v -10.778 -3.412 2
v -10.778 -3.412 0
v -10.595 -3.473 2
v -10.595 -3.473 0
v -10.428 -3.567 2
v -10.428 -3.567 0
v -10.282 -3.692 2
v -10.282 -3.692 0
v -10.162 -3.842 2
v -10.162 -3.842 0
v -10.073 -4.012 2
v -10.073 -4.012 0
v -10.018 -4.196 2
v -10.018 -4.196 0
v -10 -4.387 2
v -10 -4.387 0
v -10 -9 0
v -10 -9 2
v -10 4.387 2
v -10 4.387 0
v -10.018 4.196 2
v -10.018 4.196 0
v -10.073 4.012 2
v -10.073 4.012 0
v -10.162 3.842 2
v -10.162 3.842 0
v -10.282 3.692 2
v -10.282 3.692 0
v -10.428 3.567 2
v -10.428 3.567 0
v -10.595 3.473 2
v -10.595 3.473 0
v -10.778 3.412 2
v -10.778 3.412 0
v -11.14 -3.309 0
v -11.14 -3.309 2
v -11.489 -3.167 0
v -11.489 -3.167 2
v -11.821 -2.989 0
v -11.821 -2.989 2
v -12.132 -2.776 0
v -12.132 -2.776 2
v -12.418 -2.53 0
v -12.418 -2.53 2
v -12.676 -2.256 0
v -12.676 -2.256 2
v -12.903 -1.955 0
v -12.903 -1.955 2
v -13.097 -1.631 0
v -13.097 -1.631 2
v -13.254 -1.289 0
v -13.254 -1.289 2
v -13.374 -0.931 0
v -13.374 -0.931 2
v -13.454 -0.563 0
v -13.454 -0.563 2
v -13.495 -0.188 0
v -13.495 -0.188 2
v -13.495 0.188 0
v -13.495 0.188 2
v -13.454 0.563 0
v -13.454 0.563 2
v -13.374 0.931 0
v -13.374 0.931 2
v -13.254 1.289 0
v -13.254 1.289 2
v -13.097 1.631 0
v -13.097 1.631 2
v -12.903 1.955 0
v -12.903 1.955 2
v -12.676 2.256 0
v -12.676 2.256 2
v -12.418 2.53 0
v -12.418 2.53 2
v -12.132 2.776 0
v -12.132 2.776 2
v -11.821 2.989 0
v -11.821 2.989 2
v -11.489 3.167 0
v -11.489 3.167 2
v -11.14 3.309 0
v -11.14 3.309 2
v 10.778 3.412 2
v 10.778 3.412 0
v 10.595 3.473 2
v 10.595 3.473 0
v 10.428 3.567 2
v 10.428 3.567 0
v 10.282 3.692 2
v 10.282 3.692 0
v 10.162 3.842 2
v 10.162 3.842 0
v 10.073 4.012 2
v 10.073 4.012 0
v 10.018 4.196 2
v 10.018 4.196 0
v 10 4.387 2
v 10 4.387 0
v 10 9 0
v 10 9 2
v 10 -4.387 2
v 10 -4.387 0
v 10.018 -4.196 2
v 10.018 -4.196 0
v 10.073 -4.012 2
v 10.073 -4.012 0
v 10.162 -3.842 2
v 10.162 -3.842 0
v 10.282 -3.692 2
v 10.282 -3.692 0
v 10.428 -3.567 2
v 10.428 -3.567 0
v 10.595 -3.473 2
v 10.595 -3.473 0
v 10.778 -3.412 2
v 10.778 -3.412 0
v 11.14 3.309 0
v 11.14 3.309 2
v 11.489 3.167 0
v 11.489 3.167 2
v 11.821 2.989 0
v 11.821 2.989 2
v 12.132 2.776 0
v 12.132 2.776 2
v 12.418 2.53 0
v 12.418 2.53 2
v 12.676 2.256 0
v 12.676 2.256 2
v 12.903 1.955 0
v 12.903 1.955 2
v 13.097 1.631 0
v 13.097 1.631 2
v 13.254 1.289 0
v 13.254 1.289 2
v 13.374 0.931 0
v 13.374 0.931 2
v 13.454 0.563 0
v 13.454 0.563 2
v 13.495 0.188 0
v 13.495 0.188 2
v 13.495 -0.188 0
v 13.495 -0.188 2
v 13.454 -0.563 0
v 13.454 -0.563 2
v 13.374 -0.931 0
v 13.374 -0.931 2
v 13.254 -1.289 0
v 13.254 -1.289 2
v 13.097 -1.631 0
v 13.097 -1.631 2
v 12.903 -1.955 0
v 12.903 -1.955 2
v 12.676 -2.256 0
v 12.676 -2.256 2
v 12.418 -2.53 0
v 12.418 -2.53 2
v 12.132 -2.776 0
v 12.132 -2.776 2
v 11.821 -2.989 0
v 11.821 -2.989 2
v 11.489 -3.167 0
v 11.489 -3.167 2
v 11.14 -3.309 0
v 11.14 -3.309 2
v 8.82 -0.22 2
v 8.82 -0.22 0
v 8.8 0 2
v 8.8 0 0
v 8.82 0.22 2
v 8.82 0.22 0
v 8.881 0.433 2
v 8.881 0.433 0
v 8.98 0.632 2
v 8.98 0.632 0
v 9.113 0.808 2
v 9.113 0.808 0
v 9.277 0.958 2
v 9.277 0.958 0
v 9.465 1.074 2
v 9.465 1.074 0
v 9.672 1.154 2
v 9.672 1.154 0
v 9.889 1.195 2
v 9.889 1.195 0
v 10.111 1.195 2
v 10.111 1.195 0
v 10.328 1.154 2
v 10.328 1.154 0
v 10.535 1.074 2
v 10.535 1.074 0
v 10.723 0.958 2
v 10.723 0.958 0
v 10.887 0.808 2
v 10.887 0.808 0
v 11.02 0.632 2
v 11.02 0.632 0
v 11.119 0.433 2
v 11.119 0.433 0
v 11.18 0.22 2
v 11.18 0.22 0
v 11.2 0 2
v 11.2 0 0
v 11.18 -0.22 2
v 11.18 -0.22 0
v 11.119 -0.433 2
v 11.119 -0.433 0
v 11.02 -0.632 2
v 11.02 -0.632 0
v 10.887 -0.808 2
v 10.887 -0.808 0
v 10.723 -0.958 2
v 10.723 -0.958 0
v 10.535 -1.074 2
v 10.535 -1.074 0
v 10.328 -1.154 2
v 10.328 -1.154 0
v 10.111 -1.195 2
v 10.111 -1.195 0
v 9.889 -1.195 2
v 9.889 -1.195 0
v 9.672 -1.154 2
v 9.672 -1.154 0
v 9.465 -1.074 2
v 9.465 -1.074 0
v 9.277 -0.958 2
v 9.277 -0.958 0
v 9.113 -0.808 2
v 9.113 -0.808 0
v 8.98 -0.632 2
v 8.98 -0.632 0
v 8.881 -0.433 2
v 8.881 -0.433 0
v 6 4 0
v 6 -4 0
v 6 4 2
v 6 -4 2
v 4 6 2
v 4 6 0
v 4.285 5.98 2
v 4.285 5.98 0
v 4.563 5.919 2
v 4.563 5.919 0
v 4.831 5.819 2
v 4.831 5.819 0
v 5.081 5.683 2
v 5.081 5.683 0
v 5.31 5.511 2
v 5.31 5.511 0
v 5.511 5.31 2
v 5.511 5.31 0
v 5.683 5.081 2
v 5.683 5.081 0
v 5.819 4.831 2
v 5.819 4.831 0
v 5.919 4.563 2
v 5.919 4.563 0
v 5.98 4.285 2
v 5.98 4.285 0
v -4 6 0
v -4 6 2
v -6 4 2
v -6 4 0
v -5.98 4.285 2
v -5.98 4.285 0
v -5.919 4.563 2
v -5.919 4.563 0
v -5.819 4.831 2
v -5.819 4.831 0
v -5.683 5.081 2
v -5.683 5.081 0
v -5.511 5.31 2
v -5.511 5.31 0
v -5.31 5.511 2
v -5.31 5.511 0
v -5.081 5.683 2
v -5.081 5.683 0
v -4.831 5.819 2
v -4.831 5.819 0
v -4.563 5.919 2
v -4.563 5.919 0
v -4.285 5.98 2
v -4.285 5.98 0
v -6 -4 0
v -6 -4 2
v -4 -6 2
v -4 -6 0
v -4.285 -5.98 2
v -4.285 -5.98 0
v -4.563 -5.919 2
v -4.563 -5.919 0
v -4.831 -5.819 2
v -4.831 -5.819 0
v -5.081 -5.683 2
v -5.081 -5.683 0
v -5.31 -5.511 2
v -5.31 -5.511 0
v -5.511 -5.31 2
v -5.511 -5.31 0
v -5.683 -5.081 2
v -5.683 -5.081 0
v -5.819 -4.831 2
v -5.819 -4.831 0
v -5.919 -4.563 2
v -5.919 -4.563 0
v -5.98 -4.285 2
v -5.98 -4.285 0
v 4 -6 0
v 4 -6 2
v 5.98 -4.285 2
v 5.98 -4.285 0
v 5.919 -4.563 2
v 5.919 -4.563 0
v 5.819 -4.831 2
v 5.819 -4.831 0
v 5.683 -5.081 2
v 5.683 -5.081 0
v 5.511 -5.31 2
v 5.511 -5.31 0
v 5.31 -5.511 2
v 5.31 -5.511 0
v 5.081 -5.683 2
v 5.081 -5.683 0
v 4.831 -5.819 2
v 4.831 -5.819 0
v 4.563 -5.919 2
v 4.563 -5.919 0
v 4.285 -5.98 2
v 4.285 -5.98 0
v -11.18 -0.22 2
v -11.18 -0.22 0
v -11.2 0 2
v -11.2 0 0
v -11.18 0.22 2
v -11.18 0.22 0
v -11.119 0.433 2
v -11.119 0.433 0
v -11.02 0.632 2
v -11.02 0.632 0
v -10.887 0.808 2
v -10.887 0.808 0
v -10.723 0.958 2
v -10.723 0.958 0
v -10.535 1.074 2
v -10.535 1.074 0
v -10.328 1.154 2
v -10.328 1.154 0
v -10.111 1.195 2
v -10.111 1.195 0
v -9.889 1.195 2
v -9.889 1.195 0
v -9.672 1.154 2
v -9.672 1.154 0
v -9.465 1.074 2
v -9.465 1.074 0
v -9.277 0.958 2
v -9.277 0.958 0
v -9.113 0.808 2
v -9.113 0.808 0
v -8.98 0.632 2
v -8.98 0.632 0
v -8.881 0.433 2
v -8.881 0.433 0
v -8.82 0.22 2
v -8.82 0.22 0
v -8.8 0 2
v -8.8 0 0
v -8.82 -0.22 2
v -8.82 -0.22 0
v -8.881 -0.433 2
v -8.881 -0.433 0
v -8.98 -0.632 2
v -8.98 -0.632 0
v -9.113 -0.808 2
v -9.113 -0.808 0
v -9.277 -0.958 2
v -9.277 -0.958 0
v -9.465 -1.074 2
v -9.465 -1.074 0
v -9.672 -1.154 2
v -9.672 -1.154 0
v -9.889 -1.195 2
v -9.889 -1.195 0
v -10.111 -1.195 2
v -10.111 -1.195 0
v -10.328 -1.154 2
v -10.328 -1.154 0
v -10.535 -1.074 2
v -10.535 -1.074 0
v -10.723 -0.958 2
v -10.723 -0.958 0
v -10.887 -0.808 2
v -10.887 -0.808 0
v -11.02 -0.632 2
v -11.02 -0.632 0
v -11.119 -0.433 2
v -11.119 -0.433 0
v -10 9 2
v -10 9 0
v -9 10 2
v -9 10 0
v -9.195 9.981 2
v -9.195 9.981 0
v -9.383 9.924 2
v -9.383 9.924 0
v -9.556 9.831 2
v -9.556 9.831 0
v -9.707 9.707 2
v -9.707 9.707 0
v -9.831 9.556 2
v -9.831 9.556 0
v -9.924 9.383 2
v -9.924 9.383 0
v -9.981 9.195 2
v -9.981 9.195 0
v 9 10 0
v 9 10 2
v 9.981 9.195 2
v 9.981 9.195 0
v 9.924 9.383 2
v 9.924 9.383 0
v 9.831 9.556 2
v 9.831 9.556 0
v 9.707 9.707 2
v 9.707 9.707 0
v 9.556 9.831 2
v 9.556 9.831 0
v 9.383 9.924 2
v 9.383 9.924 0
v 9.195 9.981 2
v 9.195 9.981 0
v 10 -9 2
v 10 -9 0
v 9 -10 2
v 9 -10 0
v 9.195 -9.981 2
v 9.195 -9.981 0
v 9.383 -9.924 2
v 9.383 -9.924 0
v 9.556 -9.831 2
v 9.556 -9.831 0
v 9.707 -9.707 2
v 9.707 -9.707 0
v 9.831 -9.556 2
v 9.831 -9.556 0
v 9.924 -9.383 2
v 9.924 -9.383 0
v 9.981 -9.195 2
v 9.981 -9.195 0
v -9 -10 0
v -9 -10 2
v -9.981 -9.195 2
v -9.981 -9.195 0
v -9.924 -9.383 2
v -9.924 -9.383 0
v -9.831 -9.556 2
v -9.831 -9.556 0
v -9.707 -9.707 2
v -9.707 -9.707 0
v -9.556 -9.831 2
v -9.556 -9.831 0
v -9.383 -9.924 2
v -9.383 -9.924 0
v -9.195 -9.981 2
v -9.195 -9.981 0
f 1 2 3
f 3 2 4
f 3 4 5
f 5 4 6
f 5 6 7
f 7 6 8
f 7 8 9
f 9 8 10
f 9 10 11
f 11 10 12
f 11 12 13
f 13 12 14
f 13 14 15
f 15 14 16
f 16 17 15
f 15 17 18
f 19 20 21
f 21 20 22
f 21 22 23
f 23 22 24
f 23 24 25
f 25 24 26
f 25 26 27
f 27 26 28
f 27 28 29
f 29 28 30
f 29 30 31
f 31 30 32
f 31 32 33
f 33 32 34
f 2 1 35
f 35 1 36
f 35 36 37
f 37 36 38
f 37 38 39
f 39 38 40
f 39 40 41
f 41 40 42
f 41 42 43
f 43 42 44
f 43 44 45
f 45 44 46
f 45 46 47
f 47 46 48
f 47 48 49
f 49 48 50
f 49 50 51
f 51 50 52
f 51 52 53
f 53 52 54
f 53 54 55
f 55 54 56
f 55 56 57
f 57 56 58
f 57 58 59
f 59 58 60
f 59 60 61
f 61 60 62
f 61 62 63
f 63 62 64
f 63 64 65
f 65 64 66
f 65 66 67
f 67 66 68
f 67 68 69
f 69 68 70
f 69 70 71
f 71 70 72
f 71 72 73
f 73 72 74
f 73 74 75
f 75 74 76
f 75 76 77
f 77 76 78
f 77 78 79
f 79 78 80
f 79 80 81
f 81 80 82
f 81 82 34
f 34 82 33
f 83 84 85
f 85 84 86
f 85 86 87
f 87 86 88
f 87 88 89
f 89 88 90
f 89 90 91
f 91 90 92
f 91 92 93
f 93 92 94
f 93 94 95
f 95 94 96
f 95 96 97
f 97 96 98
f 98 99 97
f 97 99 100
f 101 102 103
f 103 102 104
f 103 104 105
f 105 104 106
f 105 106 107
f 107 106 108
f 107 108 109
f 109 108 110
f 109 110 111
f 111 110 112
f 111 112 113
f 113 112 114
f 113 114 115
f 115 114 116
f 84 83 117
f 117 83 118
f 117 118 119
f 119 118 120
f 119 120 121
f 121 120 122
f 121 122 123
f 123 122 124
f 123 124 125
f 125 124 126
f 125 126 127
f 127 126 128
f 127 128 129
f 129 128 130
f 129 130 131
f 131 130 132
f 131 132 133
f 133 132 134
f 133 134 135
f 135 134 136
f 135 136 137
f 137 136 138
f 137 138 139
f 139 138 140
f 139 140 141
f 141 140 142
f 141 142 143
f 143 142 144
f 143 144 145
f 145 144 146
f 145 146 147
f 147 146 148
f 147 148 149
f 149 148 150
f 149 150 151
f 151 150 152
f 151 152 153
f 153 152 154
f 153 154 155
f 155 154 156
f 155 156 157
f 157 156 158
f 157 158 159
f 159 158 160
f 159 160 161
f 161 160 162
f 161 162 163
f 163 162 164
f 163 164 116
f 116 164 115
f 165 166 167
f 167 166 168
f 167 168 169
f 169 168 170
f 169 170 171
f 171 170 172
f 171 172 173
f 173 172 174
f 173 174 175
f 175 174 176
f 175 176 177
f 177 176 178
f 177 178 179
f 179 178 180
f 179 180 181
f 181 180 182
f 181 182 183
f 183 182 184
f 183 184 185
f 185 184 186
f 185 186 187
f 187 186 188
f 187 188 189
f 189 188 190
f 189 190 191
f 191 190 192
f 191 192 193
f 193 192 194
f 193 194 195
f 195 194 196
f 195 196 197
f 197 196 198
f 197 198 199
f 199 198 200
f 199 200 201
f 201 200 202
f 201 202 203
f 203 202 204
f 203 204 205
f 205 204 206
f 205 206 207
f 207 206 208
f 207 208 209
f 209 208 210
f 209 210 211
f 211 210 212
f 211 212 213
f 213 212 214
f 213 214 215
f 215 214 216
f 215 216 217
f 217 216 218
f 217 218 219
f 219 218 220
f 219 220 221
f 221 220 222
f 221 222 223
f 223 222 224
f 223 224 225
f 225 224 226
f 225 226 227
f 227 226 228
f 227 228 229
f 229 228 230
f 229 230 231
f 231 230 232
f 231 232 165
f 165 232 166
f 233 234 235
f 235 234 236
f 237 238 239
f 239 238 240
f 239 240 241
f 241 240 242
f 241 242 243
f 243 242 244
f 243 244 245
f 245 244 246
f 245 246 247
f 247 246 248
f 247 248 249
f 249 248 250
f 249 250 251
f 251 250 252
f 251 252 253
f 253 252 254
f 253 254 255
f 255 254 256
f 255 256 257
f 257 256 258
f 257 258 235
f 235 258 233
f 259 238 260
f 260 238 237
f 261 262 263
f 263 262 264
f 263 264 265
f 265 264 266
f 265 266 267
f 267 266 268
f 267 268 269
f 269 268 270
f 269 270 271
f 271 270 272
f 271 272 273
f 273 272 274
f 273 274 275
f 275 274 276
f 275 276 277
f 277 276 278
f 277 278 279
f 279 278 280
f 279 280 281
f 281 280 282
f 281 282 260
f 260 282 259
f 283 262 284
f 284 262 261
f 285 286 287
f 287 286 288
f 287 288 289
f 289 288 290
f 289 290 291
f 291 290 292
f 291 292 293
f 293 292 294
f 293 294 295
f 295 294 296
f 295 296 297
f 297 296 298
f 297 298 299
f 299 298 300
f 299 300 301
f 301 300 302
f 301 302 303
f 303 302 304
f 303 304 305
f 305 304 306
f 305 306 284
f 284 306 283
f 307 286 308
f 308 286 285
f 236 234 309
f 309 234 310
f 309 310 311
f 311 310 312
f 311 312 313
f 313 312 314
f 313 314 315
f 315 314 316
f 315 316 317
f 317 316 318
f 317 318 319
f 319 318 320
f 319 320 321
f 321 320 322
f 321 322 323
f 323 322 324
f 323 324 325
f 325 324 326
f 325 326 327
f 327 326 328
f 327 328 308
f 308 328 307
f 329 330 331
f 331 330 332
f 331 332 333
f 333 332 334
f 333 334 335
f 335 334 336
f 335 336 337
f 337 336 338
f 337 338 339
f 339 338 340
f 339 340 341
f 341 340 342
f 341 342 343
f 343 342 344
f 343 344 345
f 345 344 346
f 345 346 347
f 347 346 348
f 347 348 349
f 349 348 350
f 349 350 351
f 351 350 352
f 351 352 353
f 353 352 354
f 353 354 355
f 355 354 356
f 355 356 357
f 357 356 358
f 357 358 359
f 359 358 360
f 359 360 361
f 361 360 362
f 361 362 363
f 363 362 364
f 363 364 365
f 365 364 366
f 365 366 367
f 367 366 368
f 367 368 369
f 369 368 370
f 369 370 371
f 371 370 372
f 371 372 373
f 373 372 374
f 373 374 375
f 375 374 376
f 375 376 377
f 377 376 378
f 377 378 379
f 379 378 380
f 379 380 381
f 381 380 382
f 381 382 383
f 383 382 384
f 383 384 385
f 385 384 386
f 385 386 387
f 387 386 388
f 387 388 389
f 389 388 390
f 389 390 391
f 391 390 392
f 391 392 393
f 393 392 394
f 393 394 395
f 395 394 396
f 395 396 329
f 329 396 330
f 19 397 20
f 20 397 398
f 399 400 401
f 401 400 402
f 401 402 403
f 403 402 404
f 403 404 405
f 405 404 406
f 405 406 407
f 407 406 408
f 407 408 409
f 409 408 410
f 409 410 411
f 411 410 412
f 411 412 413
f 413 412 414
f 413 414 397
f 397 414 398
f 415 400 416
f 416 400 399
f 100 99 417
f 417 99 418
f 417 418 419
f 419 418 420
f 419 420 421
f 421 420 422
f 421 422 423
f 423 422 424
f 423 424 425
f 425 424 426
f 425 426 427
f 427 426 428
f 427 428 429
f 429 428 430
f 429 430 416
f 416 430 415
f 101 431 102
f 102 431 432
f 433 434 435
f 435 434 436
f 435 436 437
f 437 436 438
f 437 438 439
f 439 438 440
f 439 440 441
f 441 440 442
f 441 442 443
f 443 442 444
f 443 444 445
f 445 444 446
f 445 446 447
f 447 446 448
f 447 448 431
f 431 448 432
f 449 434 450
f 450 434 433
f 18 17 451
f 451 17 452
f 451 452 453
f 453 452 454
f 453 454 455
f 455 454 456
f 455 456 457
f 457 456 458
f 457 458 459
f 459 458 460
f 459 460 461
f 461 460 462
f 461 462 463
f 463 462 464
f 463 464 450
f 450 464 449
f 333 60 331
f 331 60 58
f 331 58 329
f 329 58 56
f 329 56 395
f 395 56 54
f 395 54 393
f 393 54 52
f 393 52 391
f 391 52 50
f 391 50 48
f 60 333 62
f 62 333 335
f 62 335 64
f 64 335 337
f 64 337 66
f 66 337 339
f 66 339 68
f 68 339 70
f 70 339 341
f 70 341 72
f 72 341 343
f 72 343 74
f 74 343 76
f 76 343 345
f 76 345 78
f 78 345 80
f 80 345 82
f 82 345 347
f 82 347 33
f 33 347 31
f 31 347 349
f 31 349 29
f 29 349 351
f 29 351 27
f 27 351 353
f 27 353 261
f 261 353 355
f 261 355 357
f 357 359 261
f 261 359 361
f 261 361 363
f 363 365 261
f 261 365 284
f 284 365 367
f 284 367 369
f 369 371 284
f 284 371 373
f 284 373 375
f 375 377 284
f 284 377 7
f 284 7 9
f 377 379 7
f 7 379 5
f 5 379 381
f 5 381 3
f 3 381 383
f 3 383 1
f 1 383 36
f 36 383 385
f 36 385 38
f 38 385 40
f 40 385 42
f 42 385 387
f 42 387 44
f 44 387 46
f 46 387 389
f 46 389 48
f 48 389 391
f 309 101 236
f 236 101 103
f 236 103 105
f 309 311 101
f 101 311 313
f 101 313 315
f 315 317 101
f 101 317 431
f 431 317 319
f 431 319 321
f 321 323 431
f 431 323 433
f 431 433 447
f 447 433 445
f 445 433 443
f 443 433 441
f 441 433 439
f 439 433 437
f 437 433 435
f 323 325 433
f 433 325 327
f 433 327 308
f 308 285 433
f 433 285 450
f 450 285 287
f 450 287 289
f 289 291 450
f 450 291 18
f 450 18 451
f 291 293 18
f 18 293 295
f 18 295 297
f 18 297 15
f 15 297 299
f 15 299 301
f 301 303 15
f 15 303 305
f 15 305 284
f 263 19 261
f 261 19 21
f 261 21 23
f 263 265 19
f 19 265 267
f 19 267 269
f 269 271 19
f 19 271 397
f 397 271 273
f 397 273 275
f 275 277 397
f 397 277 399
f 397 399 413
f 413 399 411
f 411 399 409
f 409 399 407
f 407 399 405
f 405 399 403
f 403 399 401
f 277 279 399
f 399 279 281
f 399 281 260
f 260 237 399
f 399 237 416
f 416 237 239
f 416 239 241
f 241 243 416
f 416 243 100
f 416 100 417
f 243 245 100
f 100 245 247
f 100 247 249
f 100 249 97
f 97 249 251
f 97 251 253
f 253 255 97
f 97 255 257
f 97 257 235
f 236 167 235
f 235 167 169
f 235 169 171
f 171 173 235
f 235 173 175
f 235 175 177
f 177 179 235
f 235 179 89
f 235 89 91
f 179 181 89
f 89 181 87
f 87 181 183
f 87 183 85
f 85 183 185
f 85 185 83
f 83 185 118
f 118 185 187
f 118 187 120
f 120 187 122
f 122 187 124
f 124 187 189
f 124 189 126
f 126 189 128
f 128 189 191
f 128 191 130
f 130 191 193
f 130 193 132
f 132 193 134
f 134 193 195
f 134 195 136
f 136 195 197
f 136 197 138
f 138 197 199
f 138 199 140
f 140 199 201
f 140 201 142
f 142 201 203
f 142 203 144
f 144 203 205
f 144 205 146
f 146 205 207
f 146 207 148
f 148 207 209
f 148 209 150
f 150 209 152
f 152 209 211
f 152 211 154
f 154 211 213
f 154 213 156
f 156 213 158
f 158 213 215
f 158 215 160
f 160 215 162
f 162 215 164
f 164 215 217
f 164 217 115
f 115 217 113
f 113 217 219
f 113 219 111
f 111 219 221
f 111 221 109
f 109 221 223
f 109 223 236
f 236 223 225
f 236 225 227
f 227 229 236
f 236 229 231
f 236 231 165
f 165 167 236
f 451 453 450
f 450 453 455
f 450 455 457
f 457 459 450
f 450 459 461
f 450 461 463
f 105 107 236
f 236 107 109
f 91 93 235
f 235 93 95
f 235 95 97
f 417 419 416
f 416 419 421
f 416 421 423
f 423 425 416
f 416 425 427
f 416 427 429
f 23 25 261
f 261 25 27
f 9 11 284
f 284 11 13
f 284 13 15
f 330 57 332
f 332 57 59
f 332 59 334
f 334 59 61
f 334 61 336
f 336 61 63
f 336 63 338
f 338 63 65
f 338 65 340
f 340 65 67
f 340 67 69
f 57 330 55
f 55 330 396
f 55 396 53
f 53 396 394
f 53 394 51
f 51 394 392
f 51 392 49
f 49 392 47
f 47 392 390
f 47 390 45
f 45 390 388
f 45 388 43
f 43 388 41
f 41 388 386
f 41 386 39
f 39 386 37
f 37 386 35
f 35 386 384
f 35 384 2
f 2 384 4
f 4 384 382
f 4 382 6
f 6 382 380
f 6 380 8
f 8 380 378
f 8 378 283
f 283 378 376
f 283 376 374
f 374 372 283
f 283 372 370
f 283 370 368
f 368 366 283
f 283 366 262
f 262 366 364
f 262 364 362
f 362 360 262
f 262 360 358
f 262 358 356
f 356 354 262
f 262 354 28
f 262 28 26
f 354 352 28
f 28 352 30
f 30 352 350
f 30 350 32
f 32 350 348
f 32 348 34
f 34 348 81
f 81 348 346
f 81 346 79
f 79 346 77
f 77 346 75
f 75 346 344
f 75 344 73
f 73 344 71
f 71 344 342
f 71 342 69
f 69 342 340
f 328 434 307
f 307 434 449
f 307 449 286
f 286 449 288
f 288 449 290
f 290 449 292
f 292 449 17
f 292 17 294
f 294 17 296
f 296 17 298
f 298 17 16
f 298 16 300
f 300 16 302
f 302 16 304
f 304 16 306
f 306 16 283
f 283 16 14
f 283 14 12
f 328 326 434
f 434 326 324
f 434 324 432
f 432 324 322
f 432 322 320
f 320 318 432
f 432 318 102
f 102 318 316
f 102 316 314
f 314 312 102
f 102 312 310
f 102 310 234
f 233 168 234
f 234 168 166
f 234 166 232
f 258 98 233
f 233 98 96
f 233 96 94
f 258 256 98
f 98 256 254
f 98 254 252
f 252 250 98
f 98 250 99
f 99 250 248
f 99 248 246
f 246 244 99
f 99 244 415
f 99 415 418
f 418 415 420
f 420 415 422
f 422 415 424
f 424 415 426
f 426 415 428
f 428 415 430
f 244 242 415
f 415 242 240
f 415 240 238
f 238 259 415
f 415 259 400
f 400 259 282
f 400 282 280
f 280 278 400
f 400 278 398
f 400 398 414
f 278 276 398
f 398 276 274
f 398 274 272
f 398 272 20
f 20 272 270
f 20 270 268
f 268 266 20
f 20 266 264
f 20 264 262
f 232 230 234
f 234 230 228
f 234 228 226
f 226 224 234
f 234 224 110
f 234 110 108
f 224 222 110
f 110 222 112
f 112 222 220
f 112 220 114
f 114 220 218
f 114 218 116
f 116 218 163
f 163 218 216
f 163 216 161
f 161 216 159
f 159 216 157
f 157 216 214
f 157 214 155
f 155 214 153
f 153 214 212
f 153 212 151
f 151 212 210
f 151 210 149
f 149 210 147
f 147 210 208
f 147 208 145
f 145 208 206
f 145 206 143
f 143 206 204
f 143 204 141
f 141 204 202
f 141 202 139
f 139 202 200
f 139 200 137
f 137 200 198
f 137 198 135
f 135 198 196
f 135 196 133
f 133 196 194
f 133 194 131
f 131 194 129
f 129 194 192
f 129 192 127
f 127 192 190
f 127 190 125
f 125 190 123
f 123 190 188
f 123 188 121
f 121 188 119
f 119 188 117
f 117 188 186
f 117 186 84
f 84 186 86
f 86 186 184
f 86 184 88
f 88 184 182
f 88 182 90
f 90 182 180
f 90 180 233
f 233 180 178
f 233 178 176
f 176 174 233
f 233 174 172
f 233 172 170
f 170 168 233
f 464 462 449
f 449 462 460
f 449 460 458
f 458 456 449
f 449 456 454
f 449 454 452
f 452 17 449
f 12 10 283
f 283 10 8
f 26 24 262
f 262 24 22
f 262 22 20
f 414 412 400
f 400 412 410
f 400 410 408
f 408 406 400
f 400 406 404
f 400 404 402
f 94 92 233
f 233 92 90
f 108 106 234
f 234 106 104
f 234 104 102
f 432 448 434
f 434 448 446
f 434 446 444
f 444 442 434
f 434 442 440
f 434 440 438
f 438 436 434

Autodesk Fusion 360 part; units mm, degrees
sketch "Sketch1" plane through (0, 0, 0) normal (0, 0, 1) x (1, 0, 0)
  line L0 (4, 6) -> (-4, 6)
  line L1 (-6, 4) -> (-6, -4)
  line L2 (-4, -6) -> (4, -6)
  line L3 (6, -4) -> (6, 4)
  line L4 (6, 6) -> (-6, -6) construction
  line L5 (-6, 6) -> (6, -6) construction
  line L6 (9, -10) -> (-9, -10)
  line L7 (-10, -9) -> (-10, 9)
  line L8 (-9, 10) -> (9, 10)
  line L9 (10, 9) -> (10, -9)
  line L10 (10, -10) -> (-10, 10) construction
  line L11 (-10, -10) -> (10, 10) construction
  circle A0 centre (10, 0) radius 1.2
  circle A1 centre (-10, 0) radius 1.2
  circle A2 centre (10, 0) radius 3.5
  circle A3 centre (-10, 0) radius 3.5
  arc A4 (-9, 10) -> (-10, 9) centre (-9, 9) ccw
  arc A5 (10, 9) -> (9, 10) centre (9, 9) ccw
  arc A6 (-10, -9) -> (-9, -10) centre (-9, -9) ccw
  arc A7 (9, -10) -> (10, -9) centre (9, -9) ccw
  arc A8 (-4, 6) -> (-6, 4) centre (-4, 4) ccw
  arc A9 (6, 4) -> (4, 6) centre (4, 4) ccw
  arc A10 (-6, -4) -> (-4, -6) centre (-4, -4) ccw
  arc A11 (4, -6) -> (6, -4) centre (4, -4) ccw
  dimension "d1" = 12
  dimension "d2" = 12
  dimension "d3" = 20
  dimension "d4" = 20
  dimension "d5" = 2.4
  dimension "d6" = 2.4
  dimension "d7" = 7
  dimension "d8" = 7
  dimension "d9" = 10
  dimension "d10" = 10
  dimension "d11" = 1
  dimension "d12" = 1
  dimension "d13" = 1
  dimension "d14" = 2
  dimension "d15" = 2
  dimension "d16" = 2
  dimension "d17" = 2
extrude "Extrude1" add sketch "Sketch1" along normal blind 2 contours L6 L7 L8 L9 A2 A3 A4 A5 A6 A7 | L9 A0 A2 | L9 A0 A2 | L7 A1 A3 | L7 A1 A3
fillet "Fillet1" radius 1 4 edges at (10, -3.5, 1) (10, 3.5, 1) (-10, 3.5, 1) (-10, -3.5, 1)
